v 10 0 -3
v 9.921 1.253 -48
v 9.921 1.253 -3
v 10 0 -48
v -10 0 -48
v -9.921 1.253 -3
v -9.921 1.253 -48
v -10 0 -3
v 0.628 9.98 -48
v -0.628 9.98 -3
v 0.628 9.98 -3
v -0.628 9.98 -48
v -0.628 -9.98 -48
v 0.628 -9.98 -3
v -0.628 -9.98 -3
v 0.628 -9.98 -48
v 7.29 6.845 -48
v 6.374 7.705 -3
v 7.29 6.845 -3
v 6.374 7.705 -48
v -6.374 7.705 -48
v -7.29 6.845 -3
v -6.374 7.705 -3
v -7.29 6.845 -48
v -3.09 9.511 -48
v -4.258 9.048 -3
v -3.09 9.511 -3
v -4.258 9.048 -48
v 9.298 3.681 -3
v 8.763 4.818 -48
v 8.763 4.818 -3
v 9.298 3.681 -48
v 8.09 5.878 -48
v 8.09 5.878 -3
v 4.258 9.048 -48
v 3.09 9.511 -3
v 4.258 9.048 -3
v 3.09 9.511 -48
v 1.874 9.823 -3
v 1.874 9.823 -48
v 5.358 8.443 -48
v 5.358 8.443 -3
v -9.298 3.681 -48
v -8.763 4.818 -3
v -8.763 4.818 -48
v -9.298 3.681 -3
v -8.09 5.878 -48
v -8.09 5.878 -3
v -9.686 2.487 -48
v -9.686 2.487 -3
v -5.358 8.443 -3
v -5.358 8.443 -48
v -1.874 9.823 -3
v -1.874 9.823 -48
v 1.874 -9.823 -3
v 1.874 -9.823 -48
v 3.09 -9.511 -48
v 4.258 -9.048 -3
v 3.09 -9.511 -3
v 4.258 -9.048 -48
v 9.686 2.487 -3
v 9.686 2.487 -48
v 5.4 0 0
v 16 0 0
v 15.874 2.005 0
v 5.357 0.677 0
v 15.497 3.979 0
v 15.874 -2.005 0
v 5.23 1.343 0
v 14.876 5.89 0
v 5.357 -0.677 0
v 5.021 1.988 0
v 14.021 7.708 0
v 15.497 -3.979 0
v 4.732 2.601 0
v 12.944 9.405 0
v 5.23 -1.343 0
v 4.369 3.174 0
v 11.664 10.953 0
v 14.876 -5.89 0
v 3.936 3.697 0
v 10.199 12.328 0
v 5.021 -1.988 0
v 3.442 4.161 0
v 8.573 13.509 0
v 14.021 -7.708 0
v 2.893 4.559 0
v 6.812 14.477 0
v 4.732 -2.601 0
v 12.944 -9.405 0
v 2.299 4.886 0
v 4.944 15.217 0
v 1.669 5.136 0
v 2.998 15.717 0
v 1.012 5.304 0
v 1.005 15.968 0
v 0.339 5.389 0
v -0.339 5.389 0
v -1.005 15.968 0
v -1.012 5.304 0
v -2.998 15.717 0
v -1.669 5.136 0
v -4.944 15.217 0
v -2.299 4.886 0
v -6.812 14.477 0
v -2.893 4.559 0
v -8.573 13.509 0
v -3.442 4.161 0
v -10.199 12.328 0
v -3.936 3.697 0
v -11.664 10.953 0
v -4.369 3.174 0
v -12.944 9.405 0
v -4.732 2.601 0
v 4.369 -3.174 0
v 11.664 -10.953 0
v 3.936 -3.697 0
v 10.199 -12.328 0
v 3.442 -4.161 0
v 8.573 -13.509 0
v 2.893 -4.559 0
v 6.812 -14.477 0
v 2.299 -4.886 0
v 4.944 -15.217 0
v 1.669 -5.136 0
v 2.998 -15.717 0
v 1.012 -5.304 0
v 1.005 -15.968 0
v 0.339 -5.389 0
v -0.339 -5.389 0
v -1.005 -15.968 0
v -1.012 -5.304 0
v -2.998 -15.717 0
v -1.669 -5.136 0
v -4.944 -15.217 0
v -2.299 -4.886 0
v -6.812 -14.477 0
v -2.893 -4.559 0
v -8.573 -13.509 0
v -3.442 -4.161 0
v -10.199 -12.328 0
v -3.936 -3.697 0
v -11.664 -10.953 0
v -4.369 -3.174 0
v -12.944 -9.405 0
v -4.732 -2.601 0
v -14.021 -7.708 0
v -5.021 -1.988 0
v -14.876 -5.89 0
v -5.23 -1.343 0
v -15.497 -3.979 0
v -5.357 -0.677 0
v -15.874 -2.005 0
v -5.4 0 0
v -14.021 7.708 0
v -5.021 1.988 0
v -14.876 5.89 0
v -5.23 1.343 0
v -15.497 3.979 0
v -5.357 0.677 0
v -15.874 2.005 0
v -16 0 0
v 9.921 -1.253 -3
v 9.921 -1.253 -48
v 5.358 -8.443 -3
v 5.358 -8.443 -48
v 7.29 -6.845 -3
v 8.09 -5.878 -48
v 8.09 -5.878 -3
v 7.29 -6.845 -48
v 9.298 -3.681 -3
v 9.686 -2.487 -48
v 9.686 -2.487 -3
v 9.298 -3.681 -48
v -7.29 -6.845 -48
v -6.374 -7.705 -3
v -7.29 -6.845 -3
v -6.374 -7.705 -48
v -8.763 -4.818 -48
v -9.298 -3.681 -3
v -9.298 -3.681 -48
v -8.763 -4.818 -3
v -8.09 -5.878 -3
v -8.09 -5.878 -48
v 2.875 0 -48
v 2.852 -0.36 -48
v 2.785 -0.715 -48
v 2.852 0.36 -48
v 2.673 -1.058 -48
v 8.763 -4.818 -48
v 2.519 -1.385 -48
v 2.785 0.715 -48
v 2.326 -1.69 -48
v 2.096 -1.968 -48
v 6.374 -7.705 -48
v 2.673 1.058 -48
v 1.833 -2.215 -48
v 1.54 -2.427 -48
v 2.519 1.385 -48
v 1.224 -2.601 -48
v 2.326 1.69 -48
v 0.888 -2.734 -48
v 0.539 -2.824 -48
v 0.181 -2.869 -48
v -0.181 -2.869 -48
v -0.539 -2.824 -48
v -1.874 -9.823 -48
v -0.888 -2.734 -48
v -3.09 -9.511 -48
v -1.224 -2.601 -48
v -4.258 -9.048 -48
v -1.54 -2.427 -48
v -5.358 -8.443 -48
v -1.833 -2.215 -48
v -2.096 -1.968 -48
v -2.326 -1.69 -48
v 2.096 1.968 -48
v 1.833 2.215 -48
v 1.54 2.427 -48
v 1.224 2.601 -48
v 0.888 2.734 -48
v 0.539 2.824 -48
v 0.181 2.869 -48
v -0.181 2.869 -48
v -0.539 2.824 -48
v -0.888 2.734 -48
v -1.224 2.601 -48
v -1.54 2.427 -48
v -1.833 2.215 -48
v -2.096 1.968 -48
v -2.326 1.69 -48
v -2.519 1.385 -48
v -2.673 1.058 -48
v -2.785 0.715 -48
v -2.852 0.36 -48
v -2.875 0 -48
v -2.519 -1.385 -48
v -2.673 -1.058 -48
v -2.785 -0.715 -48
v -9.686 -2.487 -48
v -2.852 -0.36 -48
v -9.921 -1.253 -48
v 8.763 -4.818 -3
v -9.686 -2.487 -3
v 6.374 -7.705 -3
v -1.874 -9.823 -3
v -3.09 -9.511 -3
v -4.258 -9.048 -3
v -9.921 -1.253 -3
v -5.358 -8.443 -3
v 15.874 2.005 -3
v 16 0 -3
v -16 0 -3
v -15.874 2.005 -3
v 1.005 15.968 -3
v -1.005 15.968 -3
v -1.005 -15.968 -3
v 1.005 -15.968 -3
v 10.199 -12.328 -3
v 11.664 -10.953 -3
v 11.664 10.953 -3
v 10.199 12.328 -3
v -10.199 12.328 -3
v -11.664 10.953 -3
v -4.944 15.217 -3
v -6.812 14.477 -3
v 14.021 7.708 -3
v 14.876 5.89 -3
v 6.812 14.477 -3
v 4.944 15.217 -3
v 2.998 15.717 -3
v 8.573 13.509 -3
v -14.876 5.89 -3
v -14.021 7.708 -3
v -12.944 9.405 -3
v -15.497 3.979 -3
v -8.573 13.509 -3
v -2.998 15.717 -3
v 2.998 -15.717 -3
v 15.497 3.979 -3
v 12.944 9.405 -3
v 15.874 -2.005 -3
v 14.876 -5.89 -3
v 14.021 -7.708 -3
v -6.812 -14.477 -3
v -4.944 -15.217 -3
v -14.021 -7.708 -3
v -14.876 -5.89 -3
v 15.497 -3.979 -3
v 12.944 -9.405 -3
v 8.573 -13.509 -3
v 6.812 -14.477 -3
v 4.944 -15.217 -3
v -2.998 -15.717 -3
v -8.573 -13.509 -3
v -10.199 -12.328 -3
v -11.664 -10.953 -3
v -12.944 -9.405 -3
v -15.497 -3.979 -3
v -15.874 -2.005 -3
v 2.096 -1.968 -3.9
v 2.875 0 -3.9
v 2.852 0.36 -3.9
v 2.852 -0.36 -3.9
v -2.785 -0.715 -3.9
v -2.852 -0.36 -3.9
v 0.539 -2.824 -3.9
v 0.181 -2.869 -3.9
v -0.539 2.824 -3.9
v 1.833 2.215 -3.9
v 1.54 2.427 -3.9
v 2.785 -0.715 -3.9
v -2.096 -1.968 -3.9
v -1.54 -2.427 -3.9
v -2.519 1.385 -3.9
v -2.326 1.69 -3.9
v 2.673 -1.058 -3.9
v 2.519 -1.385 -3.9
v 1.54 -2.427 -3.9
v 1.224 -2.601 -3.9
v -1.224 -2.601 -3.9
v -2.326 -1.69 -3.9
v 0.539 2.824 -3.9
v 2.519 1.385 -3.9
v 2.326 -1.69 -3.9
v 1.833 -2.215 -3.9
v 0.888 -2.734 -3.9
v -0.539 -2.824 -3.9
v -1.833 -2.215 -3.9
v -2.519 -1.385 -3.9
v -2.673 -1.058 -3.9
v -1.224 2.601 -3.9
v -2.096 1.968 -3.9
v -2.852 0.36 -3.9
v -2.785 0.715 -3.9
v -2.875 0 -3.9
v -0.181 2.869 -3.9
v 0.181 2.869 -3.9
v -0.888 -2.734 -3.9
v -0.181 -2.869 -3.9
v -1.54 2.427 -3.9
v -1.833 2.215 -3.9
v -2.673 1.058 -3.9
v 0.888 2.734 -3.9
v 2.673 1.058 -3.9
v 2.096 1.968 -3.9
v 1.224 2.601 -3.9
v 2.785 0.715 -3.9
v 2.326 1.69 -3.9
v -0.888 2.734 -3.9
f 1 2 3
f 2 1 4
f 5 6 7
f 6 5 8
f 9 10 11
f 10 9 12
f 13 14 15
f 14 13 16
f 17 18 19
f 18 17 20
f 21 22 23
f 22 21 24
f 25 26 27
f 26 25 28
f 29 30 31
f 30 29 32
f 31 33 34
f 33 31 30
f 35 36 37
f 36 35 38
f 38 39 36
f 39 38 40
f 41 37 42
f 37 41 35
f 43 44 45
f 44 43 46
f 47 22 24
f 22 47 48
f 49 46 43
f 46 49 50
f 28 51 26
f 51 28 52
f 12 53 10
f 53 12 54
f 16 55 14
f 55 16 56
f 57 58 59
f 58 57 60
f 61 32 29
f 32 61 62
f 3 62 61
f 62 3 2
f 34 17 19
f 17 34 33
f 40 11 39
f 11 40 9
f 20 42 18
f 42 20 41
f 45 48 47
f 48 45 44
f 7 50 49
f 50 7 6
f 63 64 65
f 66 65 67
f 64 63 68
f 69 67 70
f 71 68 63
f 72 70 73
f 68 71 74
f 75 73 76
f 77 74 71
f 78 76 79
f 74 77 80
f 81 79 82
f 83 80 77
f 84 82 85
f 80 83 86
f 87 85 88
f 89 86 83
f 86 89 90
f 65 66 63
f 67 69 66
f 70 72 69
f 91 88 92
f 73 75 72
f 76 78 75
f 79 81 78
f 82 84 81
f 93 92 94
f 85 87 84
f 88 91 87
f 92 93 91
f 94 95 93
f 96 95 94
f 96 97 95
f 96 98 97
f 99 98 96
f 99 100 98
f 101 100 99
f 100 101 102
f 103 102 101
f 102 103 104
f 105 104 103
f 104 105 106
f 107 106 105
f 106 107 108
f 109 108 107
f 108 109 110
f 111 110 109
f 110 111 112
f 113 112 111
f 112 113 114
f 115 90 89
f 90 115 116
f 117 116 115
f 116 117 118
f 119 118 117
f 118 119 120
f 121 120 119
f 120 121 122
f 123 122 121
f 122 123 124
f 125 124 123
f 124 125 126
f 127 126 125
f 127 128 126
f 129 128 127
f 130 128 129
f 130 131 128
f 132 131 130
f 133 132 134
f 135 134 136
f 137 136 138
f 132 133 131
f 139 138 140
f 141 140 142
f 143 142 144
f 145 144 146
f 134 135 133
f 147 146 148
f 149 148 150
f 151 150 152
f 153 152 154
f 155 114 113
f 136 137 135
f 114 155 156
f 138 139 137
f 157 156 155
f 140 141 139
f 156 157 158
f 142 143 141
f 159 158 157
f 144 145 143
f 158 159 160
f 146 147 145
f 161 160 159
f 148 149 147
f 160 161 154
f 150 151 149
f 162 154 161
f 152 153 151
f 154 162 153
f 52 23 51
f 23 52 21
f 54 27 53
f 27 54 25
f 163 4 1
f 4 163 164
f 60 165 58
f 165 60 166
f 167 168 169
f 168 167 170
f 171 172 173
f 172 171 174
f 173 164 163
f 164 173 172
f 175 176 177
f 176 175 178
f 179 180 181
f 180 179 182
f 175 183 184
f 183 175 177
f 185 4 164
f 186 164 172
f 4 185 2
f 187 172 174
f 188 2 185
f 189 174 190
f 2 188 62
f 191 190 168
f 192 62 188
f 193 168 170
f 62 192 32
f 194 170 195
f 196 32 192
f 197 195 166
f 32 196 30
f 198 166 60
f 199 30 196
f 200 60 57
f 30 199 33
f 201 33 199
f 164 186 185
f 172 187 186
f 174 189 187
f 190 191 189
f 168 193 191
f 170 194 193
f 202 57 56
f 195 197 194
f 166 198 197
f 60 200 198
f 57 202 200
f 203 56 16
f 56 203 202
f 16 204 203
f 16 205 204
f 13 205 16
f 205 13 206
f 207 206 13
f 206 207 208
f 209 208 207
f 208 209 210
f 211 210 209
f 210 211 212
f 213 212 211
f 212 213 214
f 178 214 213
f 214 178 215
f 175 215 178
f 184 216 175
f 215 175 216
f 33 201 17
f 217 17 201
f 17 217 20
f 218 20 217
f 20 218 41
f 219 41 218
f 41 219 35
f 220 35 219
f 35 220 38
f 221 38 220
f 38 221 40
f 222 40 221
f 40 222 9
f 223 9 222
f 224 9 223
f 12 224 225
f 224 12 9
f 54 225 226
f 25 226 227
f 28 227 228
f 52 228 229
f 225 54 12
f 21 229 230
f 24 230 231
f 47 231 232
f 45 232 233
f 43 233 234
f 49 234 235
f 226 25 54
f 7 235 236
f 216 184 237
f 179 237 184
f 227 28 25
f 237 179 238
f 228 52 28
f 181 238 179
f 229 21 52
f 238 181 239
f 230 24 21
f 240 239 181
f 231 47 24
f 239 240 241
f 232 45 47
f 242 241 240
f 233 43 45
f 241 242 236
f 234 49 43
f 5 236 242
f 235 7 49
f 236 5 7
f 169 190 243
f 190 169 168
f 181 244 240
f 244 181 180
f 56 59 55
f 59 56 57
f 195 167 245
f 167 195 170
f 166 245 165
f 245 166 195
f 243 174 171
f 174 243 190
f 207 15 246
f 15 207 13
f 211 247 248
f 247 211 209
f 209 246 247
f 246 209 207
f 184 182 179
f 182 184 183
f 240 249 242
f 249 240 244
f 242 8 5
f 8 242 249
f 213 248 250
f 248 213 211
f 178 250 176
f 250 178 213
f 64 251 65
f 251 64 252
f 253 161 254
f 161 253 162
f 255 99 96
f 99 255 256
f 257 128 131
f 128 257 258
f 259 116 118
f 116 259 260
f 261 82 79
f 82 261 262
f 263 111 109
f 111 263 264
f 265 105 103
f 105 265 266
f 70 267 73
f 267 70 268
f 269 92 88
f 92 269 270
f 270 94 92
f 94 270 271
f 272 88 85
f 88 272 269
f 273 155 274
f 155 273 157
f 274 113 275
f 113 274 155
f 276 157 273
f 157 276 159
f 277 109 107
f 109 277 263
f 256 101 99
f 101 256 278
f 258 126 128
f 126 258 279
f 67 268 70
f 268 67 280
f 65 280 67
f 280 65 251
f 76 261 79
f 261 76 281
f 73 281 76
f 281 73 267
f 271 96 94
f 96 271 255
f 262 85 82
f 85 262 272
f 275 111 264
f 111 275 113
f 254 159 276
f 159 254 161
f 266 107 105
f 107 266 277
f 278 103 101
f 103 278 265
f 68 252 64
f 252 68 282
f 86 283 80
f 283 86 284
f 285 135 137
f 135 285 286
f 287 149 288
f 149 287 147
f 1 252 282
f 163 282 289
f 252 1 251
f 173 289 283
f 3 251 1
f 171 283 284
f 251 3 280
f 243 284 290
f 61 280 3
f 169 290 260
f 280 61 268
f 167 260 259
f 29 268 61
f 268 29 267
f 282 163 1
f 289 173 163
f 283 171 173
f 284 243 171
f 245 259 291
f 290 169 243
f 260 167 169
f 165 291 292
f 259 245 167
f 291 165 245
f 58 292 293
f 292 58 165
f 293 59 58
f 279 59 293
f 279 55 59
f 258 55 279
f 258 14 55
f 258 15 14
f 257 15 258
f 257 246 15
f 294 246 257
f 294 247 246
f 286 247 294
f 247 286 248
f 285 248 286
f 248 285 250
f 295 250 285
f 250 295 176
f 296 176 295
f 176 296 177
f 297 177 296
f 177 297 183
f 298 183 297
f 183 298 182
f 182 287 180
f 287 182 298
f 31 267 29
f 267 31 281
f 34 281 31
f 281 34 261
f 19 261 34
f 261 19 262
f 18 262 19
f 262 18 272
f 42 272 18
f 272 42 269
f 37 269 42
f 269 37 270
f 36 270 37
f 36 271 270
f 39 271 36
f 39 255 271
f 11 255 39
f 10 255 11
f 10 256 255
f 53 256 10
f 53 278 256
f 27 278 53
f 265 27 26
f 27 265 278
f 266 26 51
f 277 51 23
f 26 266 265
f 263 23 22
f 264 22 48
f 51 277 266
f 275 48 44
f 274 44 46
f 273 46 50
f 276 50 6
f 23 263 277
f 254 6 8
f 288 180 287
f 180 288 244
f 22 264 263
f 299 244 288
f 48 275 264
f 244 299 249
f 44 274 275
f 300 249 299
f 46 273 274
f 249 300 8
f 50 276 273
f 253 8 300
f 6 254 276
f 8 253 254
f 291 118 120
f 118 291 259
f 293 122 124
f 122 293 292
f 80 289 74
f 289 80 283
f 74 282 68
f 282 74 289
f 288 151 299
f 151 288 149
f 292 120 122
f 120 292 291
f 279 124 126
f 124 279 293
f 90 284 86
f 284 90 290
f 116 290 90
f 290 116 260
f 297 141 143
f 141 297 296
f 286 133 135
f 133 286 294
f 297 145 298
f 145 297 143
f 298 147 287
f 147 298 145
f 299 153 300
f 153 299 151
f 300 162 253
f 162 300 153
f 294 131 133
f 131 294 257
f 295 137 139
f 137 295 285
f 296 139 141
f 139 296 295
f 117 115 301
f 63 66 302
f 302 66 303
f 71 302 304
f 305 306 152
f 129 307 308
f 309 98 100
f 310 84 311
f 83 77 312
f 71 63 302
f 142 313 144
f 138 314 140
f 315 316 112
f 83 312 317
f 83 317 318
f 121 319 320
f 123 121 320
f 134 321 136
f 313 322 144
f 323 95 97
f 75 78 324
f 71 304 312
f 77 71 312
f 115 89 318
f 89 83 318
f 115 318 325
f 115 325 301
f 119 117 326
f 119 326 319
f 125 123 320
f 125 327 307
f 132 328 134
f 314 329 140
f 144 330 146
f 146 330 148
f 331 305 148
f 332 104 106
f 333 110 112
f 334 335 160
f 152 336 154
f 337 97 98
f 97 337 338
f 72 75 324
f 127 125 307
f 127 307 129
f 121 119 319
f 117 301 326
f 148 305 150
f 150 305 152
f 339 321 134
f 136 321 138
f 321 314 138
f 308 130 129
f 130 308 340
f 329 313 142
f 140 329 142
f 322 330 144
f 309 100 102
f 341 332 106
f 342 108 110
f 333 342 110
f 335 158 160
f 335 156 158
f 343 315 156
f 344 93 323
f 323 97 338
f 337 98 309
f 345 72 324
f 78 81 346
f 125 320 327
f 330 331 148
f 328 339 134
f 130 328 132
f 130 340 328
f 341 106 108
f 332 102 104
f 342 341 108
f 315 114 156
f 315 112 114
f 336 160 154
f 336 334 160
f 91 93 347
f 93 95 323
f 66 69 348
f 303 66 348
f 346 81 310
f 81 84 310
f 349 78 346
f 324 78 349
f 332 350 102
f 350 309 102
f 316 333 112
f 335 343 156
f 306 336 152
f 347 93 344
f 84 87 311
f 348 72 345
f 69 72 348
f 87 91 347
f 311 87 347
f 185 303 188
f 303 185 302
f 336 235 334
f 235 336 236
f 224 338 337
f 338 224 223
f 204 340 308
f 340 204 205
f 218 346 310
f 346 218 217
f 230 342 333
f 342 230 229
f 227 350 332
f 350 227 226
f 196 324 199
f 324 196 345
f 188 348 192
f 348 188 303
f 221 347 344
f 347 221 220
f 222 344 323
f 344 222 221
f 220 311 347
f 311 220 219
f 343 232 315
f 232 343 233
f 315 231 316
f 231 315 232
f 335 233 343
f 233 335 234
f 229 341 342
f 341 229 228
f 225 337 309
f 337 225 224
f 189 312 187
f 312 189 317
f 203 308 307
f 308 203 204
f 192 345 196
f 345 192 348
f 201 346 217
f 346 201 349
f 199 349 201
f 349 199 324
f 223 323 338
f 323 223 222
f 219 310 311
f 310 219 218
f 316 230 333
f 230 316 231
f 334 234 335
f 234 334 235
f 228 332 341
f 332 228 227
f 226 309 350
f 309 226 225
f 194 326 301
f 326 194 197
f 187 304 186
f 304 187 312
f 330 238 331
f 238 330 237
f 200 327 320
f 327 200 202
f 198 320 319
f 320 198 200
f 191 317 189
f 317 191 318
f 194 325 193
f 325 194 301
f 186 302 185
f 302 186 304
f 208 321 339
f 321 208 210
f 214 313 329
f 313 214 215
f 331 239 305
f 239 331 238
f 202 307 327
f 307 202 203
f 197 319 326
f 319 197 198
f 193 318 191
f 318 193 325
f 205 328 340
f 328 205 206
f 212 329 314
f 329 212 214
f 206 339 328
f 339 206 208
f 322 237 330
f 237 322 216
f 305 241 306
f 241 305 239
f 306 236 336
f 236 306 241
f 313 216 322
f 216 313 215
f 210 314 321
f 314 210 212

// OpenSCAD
$fn = 50;


difference() {
	union() {
		translate(v = [0, 0, -48.0000000000]) {
			cylinder(h = 48, r = 10.0000000000);
		}
		translate(v = [0, 0, -3.0000000000]) {
			cylinder(h = 3, r = 16.0000000000);
		}
	}
	union() {
		translate(v = [0, 0, 0]) {
			rotate(a = [0, 0, 0]) {
				difference() {
					union() {
						#translate(v = [0, 0, -48.0000000000]) {
							cylinder(h = 48, r = 2.6000000000);
						}
						#translate(v = [0, 0, -3.9000000000]) {
							cylinder(h = 3.9000000000, r = 10.0000000000, r1 = 2.8750000000, r2 = 5.4000000000);
						}
						#translate(v = [0, 0, -48.0000000000]) {
							cylinder(h = 48, r = 2.8750000000);
						}
						#translate(v = [0, 0, -48.0000000000]) {
							cylinder(h = 48, r = 2.6000000000);
						}
					}
					union();
				}
			}
		}
	}
}
